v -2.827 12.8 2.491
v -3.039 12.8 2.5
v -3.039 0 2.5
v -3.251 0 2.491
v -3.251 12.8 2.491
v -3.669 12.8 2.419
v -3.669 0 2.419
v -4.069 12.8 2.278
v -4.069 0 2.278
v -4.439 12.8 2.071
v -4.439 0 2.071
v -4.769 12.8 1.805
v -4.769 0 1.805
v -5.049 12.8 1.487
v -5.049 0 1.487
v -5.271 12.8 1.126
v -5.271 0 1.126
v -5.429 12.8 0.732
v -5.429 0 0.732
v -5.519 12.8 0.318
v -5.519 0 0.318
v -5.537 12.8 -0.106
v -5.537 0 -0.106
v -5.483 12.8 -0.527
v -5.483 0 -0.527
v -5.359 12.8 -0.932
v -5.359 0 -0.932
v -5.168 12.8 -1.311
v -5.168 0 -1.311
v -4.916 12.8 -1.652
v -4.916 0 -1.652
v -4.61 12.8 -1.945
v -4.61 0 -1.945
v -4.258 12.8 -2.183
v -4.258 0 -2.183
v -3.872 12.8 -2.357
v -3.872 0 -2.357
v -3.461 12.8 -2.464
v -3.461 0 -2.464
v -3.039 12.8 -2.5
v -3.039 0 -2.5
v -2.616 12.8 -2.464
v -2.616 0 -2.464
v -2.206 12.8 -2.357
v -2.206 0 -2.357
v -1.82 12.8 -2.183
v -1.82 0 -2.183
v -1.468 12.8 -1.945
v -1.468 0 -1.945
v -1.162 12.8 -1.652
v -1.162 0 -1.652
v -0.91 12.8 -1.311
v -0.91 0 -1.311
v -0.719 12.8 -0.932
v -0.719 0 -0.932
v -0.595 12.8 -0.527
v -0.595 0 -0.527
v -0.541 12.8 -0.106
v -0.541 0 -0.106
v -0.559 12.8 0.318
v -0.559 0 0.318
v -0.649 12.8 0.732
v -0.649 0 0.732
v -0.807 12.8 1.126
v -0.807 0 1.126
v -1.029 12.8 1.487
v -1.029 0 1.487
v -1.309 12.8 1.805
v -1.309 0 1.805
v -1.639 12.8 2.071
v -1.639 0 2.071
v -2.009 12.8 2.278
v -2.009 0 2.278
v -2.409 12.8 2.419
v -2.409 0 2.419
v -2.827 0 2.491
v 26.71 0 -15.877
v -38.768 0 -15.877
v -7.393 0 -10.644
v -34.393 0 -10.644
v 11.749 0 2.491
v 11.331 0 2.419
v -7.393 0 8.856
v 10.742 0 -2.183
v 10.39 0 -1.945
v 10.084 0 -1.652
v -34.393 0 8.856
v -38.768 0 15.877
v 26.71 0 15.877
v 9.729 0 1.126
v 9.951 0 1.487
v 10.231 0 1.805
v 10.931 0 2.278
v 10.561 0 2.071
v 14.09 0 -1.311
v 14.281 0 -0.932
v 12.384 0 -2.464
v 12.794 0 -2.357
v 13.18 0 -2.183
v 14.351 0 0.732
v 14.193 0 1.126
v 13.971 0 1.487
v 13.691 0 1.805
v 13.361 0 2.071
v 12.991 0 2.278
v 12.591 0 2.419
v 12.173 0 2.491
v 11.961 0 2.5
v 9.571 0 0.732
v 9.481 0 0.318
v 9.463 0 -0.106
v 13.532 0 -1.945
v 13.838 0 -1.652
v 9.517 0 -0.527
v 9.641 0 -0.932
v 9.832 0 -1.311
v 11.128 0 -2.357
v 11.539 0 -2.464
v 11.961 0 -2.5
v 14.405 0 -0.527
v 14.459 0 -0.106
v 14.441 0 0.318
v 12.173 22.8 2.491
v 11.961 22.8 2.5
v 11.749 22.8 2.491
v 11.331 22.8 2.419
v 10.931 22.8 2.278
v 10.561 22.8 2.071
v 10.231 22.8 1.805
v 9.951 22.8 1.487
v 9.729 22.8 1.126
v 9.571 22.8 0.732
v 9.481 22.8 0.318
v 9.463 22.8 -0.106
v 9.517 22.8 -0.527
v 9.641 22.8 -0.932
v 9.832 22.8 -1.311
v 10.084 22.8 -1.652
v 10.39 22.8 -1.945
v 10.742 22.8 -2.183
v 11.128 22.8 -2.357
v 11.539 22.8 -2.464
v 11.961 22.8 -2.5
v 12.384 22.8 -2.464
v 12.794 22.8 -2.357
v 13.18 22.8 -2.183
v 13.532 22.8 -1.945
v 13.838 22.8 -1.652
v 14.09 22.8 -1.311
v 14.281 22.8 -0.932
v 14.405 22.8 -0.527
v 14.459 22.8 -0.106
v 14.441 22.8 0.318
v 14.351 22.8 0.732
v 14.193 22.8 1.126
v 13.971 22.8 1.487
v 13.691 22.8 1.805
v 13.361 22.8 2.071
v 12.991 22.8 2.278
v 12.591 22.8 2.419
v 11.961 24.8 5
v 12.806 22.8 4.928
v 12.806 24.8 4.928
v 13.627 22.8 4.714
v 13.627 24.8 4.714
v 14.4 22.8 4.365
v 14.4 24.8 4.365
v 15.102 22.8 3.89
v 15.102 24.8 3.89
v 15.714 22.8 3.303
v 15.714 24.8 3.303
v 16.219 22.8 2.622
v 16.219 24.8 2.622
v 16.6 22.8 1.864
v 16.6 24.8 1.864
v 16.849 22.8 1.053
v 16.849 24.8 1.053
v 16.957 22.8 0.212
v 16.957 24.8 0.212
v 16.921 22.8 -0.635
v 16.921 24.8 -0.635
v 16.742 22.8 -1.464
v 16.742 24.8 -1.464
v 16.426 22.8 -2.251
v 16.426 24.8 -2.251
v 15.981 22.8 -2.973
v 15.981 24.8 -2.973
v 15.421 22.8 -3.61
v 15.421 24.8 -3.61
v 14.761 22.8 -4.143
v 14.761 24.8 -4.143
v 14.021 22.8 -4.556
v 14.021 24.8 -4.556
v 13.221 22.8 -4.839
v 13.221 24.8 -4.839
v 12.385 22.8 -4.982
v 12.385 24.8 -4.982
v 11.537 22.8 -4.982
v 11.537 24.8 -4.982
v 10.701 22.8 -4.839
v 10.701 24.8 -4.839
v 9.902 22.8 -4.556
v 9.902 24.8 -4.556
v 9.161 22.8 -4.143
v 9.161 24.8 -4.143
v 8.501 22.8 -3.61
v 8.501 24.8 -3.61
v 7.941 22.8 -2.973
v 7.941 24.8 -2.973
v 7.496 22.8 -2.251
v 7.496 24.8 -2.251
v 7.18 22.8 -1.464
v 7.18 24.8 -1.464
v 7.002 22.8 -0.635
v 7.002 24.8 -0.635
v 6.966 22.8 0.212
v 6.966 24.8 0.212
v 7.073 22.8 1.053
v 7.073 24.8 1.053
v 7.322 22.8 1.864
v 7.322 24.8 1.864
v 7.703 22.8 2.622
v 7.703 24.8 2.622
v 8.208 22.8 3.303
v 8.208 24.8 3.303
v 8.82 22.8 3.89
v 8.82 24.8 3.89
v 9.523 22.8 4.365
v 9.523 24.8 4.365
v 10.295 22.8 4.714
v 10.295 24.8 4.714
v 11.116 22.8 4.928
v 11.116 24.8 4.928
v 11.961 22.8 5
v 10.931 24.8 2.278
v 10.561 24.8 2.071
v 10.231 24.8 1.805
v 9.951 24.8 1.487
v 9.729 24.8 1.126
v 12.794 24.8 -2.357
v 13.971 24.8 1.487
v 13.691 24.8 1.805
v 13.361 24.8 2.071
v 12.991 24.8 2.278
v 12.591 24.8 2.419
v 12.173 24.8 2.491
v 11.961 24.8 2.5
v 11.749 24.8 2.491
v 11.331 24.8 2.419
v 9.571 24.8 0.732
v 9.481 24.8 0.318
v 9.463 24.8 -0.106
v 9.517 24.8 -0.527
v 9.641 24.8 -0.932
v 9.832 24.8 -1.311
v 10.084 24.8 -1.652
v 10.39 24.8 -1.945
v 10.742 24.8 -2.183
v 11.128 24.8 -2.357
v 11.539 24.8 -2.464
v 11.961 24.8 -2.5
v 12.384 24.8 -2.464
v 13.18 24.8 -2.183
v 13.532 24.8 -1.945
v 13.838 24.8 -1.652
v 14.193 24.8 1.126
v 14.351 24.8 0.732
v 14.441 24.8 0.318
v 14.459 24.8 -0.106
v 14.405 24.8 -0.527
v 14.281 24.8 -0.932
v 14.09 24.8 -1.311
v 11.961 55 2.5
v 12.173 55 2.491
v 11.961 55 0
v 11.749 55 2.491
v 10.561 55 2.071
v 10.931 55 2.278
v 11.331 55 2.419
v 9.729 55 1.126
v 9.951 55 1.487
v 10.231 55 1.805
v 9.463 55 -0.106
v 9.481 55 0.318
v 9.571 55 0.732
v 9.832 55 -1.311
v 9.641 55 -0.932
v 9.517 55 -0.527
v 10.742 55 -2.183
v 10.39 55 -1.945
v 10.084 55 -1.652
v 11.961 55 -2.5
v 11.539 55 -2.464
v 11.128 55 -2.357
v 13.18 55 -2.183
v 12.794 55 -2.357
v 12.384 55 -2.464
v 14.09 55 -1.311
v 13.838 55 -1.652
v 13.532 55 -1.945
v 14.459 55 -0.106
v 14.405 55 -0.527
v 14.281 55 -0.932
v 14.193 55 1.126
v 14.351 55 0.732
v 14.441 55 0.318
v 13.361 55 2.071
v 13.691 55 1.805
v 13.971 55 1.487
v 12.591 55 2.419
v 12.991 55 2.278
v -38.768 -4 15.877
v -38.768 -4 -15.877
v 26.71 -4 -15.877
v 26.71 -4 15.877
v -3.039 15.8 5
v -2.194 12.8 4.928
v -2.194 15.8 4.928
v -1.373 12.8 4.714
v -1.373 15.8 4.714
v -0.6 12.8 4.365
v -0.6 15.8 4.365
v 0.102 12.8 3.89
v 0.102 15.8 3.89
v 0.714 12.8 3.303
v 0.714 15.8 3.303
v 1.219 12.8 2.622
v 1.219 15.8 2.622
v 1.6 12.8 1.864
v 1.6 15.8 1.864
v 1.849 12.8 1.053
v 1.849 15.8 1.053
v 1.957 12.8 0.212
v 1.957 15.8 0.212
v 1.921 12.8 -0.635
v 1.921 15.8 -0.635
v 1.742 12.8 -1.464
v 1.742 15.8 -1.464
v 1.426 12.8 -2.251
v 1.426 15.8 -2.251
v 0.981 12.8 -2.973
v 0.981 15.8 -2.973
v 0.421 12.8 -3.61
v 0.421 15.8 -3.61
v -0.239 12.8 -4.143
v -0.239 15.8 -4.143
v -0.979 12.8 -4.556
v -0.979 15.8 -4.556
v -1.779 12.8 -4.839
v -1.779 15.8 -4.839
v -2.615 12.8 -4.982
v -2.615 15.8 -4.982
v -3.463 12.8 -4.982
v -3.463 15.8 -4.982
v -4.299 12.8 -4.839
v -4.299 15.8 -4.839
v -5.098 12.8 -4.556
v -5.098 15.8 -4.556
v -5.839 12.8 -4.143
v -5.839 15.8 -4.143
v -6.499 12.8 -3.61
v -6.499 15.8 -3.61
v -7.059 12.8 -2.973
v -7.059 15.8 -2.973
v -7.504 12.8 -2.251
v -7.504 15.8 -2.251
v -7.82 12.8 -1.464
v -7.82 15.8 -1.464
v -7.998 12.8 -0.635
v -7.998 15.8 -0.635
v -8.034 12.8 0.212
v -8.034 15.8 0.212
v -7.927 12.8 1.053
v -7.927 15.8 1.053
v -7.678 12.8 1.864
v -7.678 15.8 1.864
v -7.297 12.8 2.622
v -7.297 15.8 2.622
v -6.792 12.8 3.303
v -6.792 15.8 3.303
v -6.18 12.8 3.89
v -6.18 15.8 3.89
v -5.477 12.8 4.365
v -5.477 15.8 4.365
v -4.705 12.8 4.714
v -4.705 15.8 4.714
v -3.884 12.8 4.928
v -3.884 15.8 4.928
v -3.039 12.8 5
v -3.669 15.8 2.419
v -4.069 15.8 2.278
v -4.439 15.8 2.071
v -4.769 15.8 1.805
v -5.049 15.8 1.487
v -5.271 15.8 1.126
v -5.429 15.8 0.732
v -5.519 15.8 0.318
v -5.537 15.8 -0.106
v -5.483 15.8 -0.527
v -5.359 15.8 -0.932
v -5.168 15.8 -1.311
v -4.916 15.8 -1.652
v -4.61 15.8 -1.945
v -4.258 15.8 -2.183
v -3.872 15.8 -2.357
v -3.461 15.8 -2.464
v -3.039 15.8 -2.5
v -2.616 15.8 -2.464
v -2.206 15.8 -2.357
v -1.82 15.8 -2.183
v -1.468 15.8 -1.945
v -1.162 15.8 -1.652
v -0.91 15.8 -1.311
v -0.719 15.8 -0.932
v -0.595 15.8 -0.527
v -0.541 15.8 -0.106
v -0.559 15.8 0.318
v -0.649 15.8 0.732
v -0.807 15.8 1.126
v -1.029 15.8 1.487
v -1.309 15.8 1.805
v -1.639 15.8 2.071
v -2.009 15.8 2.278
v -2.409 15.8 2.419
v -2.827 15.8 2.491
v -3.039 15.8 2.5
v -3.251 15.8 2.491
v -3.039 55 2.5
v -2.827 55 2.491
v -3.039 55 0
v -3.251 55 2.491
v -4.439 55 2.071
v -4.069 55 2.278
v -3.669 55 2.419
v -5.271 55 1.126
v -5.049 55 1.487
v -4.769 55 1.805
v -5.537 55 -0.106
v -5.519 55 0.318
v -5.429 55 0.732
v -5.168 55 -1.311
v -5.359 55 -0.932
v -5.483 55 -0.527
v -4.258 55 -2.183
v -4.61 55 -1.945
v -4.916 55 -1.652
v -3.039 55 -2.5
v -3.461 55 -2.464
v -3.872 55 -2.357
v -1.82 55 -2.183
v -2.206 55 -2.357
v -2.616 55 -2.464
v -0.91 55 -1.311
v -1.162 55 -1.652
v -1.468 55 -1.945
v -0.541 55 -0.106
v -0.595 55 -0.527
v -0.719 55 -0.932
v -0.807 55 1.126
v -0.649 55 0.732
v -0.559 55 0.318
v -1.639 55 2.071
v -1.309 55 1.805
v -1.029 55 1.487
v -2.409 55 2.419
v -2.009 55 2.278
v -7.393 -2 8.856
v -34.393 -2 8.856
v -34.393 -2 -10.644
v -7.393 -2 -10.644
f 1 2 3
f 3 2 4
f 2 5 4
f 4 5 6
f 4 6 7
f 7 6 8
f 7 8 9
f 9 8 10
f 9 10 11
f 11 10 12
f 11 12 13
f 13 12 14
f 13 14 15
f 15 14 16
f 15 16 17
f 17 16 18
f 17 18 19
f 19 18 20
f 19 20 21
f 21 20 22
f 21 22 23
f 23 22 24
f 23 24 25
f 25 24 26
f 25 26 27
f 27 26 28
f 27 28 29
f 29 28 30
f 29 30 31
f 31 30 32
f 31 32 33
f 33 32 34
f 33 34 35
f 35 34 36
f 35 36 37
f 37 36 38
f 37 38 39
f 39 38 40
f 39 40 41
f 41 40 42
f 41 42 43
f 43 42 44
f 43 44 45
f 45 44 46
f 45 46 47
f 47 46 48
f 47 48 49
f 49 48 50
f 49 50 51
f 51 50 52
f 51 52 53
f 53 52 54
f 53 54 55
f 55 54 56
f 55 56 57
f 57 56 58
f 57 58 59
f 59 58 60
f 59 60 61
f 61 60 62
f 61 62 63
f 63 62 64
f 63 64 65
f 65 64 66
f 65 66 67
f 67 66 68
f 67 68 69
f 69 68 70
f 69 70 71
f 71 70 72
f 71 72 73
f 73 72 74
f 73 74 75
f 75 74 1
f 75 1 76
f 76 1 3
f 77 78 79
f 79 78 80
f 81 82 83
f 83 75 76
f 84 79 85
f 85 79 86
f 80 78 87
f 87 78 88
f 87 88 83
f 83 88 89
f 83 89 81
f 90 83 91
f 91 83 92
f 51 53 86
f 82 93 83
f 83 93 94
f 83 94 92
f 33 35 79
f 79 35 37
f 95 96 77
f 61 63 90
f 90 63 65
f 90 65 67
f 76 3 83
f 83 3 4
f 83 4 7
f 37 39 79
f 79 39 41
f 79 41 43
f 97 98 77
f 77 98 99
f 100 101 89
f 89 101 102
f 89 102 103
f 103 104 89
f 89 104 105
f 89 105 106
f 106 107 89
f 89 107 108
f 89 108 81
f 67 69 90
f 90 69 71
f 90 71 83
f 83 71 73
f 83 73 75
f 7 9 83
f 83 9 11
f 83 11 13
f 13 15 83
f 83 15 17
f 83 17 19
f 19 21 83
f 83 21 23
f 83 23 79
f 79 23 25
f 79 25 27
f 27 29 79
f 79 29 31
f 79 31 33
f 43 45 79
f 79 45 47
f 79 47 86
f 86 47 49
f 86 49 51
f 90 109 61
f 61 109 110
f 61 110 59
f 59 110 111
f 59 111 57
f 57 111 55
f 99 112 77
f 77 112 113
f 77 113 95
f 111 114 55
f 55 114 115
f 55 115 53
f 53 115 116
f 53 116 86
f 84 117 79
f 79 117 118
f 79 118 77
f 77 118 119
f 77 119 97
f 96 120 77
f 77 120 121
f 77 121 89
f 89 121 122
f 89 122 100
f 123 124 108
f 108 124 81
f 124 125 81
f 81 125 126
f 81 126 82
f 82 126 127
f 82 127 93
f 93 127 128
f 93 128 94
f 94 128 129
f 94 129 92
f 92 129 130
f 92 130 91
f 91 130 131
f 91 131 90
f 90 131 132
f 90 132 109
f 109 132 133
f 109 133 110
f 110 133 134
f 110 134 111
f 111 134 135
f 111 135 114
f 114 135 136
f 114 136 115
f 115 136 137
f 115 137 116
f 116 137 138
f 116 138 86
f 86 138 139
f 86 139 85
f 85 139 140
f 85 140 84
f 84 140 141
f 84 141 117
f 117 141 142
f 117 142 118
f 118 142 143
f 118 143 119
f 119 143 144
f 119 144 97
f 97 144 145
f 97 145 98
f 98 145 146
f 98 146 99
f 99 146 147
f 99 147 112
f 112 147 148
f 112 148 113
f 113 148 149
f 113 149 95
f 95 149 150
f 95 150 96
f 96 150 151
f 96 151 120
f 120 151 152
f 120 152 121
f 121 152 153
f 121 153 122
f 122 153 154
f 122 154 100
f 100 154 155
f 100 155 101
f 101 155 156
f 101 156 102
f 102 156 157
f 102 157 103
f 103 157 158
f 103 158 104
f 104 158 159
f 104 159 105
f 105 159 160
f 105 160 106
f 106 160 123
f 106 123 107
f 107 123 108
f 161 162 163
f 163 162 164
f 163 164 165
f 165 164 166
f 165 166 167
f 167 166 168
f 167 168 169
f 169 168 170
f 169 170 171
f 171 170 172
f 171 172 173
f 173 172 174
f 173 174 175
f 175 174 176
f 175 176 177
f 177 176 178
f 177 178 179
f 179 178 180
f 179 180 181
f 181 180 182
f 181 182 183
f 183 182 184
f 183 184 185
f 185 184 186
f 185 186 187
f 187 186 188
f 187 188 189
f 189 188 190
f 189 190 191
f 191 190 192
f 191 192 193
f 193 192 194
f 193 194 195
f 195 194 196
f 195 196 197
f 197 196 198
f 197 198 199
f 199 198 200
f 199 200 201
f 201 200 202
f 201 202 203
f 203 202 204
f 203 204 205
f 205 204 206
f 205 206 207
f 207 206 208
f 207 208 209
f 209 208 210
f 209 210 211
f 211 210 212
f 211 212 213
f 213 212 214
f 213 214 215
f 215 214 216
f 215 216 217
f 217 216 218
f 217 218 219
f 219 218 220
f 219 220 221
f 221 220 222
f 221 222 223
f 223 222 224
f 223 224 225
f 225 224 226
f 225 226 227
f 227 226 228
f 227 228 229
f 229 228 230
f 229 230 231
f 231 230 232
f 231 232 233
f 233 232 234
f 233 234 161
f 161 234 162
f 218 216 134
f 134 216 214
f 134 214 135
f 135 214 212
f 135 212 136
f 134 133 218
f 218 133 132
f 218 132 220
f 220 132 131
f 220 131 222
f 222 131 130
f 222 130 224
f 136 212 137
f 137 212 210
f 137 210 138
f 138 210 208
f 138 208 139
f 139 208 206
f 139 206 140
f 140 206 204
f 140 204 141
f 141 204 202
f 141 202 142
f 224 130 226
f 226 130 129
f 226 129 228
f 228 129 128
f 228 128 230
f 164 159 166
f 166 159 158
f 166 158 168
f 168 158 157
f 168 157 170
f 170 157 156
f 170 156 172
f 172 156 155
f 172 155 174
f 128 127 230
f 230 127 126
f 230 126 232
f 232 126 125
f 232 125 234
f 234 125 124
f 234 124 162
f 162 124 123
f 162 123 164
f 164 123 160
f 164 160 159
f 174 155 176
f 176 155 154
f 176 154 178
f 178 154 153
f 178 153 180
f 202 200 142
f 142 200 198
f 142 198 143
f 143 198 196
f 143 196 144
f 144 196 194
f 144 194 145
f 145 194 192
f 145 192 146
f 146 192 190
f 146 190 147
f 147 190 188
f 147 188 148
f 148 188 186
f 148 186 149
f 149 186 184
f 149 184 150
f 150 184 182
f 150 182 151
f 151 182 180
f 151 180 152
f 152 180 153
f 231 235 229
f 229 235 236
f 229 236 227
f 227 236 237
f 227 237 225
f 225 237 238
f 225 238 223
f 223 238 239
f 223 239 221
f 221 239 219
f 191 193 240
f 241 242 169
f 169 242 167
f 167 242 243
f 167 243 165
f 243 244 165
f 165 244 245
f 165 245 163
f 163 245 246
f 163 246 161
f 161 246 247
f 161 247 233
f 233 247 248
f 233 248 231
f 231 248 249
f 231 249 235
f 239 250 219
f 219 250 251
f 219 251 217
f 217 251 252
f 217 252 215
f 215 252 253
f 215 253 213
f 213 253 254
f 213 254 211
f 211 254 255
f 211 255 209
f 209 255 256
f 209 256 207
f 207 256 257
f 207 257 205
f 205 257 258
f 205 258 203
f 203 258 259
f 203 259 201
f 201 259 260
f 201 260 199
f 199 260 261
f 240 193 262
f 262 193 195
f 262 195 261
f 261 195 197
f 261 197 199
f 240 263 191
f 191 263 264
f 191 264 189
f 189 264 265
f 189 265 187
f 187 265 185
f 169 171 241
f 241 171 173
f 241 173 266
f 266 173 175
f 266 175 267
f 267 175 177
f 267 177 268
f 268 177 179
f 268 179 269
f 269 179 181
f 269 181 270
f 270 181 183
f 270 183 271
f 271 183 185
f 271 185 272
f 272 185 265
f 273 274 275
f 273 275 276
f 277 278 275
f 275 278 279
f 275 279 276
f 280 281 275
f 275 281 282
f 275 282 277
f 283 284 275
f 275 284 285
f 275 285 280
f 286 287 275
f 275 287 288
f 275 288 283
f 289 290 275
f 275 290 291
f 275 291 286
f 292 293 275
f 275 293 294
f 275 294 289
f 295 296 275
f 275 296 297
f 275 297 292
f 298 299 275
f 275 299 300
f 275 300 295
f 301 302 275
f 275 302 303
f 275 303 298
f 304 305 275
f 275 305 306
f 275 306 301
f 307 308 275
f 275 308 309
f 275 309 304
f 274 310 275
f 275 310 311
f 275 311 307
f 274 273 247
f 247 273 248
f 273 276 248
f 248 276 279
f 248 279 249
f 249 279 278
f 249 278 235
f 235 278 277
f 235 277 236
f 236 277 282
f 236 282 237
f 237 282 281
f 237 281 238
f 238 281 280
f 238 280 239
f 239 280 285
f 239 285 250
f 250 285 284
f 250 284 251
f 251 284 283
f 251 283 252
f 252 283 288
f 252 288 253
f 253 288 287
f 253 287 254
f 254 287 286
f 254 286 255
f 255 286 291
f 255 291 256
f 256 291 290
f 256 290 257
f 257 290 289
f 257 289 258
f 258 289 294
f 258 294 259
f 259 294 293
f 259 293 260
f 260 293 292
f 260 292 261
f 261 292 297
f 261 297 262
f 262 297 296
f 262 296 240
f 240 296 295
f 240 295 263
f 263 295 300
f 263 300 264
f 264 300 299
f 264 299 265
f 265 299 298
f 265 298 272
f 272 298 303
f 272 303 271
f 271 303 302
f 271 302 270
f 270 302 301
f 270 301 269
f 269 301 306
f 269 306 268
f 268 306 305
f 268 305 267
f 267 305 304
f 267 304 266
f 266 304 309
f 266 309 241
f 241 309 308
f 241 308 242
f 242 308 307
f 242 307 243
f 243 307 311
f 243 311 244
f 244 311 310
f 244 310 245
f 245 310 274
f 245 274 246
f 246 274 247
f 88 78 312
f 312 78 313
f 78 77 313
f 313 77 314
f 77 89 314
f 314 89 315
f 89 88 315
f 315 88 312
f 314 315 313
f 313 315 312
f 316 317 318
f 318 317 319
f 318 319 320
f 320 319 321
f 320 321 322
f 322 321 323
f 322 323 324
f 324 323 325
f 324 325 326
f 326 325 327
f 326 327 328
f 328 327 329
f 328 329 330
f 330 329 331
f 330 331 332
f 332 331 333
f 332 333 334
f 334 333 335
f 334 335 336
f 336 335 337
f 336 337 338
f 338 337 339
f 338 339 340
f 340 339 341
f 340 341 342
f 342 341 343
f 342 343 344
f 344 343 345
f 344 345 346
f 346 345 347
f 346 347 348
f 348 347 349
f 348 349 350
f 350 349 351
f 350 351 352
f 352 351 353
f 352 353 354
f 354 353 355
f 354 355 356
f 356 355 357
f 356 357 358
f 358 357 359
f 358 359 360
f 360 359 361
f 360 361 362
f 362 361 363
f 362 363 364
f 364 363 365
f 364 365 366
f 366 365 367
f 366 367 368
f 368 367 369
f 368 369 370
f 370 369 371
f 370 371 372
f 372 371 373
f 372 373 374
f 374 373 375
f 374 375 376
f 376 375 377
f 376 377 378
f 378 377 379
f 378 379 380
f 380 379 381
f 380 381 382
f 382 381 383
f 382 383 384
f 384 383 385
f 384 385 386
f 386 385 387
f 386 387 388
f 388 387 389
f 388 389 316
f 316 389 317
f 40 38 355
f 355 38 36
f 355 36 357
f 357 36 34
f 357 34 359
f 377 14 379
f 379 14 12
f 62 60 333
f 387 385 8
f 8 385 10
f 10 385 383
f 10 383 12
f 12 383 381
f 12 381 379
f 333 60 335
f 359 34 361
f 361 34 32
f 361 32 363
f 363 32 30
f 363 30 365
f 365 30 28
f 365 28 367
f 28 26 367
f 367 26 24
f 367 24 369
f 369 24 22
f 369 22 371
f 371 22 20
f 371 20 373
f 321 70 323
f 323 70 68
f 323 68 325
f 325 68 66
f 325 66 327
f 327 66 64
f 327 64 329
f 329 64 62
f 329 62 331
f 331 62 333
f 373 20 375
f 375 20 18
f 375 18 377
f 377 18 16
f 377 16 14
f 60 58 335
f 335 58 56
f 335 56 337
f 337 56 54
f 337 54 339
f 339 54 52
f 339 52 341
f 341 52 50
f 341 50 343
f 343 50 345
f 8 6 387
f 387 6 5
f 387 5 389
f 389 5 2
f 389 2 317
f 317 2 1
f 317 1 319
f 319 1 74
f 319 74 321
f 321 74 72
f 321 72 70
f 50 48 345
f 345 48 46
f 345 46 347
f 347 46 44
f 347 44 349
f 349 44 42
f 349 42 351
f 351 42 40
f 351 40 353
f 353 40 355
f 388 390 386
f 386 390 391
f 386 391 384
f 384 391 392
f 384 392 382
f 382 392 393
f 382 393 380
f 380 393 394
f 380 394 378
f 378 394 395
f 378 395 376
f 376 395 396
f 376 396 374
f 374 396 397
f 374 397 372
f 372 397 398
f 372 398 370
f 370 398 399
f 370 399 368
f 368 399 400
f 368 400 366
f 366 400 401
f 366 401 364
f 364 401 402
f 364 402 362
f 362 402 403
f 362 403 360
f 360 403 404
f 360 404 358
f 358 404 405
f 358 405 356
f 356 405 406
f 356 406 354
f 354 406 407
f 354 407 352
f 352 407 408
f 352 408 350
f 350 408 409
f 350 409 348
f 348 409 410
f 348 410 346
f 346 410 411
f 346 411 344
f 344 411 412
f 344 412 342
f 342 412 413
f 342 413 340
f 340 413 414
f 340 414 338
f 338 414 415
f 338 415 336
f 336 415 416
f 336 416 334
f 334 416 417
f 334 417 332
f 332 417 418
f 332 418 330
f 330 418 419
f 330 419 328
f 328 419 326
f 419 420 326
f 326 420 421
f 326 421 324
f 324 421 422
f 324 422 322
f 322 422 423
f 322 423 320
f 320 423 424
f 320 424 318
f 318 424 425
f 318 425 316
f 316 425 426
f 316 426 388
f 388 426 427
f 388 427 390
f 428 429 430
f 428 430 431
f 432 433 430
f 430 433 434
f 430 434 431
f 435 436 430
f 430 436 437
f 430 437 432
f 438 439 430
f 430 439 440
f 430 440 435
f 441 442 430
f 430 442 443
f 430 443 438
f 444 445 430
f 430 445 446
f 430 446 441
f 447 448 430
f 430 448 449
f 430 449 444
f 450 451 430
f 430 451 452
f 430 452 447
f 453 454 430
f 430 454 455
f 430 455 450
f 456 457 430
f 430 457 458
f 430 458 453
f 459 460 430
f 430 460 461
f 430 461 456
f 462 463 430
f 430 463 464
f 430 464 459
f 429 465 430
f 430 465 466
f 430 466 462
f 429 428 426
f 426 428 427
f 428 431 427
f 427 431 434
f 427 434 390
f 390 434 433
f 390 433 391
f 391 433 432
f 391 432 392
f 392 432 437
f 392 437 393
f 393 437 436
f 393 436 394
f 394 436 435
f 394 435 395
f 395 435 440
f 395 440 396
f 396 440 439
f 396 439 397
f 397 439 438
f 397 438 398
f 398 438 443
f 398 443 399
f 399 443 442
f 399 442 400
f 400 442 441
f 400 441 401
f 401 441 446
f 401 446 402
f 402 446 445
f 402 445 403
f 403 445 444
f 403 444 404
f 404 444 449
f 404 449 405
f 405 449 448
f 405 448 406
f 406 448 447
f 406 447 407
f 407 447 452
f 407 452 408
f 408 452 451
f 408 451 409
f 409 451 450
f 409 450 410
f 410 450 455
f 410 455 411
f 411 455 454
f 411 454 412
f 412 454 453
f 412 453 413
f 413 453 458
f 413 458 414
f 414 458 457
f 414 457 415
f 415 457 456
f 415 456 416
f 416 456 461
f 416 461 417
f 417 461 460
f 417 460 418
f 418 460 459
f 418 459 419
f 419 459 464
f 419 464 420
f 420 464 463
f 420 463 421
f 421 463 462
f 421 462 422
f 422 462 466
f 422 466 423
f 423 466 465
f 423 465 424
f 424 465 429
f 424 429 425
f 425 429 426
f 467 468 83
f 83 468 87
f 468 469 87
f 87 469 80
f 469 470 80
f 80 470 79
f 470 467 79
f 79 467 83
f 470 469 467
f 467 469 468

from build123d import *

# Parameters (mm, degrees)
SKETCH2_W           = 87.535593736
SKETCH2_H           = 41.754052132
BOSS_EXTRUDE1_DEPTH = 4
SKETCH1_R           = 2.5
BOSS_EXTRUDE2_DEPTH = 55
SKETCH4_R           = 5
BOSS_EXTRUDE3_DEPTH = 2
SKETCH5_W           = 87.535593736
SKETCH5_H           = 41.754052132
SKETCH5_W_2         = 65.477303461
SKETCH5_H_2         = 31.754052132
CUT_EXTRUDE5_DEPTH  = 10
SKETCH6_R           = 5
BOSS_EXTRUDE4_DEPTH = 3
SKETCH1_3_W         = 27
SKETCH1_3_H         = 19.5
CUT_EXTRUDE1_DEPTH  = 2


with BuildPart() as part:
    # Sketch2 → Boss-Extrude1 (new body)
    with BuildSketch(Plane(origin=(0, 0, 0), x_dir=(1, 0, 0), z_dir=(0, 1, 0))):
        Rectangle(SKETCH2_W, SKETCH2_H)
    extrude(amount=-BOSS_EXTRUDE1_DEPTH)

    # Sketch1 → Boss-Extrude2 (add)
    with BuildSketch(Plane(origin=(0, 0, 0), x_dir=(1, 0, 0), z_dir=(0, 1, 0))):
        with Locations((11.961031396, 0)):
            Circle(SKETCH1_R)
        with Locations((-3.038968604, 0)):
            Circle(SKETCH1_R)
    extrude(amount=BOSS_EXTRUDE2_DEPTH)

    # Sketch4 → Boss-Extrude3 (add)
    with BuildSketch(Plane(origin=(0, 24.8, 0), x_dir=(1, 0, 0), z_dir=(0, 1, 0))):
        with Locations((11.961031396, 0)):
            Circle(SKETCH4_R)
    extrude(amount=-BOSS_EXTRUDE3_DEPTH)

    # Sketch5 → Cut-Extrude5 (cut)
    with BuildSketch(Plane(origin=(0, 0, 0), x_dir=(1, 0, 0), z_dir=(0, 1, 0))):
        Rectangle(SKETCH5_W, SKETCH5_H)
        with Locations((-6.029145138, 0)):
            Rectangle(SKETCH5_W_2, SKETCH5_H_2, mode=Mode.SUBTRACT)
    extrude(amount=-CUT_EXTRUDE5_DEPTH, mode=Mode.SUBTRACT)

    # Sketch6 → Boss-Extrude4 (add)
    with BuildSketch(Plane(origin=(0, 15.8, 0), x_dir=(1, 0, 0), z_dir=(0, 1, 0))):
        with Locations((-3.038968604, 0)):
            Circle(SKETCH6_R)
    extrude(amount=-BOSS_EXTRUDE4_DEPTH)

    # Sketch1<3> → Cut-Extrude1 (cut)
    with BuildSketch(Plane(origin=(0, 0, 0), x_dir=(1, 0, 0), z_dir=(0, 1, 0))):
        with Locations((-20.892540318, 0.894456821)):
            Rectangle(SKETCH1_3_W, SKETCH1_3_H)
    extrude(amount=-CUT_EXTRUDE1_DEPTH, mode=Mode.SUBTRACT)


solid = part.part
